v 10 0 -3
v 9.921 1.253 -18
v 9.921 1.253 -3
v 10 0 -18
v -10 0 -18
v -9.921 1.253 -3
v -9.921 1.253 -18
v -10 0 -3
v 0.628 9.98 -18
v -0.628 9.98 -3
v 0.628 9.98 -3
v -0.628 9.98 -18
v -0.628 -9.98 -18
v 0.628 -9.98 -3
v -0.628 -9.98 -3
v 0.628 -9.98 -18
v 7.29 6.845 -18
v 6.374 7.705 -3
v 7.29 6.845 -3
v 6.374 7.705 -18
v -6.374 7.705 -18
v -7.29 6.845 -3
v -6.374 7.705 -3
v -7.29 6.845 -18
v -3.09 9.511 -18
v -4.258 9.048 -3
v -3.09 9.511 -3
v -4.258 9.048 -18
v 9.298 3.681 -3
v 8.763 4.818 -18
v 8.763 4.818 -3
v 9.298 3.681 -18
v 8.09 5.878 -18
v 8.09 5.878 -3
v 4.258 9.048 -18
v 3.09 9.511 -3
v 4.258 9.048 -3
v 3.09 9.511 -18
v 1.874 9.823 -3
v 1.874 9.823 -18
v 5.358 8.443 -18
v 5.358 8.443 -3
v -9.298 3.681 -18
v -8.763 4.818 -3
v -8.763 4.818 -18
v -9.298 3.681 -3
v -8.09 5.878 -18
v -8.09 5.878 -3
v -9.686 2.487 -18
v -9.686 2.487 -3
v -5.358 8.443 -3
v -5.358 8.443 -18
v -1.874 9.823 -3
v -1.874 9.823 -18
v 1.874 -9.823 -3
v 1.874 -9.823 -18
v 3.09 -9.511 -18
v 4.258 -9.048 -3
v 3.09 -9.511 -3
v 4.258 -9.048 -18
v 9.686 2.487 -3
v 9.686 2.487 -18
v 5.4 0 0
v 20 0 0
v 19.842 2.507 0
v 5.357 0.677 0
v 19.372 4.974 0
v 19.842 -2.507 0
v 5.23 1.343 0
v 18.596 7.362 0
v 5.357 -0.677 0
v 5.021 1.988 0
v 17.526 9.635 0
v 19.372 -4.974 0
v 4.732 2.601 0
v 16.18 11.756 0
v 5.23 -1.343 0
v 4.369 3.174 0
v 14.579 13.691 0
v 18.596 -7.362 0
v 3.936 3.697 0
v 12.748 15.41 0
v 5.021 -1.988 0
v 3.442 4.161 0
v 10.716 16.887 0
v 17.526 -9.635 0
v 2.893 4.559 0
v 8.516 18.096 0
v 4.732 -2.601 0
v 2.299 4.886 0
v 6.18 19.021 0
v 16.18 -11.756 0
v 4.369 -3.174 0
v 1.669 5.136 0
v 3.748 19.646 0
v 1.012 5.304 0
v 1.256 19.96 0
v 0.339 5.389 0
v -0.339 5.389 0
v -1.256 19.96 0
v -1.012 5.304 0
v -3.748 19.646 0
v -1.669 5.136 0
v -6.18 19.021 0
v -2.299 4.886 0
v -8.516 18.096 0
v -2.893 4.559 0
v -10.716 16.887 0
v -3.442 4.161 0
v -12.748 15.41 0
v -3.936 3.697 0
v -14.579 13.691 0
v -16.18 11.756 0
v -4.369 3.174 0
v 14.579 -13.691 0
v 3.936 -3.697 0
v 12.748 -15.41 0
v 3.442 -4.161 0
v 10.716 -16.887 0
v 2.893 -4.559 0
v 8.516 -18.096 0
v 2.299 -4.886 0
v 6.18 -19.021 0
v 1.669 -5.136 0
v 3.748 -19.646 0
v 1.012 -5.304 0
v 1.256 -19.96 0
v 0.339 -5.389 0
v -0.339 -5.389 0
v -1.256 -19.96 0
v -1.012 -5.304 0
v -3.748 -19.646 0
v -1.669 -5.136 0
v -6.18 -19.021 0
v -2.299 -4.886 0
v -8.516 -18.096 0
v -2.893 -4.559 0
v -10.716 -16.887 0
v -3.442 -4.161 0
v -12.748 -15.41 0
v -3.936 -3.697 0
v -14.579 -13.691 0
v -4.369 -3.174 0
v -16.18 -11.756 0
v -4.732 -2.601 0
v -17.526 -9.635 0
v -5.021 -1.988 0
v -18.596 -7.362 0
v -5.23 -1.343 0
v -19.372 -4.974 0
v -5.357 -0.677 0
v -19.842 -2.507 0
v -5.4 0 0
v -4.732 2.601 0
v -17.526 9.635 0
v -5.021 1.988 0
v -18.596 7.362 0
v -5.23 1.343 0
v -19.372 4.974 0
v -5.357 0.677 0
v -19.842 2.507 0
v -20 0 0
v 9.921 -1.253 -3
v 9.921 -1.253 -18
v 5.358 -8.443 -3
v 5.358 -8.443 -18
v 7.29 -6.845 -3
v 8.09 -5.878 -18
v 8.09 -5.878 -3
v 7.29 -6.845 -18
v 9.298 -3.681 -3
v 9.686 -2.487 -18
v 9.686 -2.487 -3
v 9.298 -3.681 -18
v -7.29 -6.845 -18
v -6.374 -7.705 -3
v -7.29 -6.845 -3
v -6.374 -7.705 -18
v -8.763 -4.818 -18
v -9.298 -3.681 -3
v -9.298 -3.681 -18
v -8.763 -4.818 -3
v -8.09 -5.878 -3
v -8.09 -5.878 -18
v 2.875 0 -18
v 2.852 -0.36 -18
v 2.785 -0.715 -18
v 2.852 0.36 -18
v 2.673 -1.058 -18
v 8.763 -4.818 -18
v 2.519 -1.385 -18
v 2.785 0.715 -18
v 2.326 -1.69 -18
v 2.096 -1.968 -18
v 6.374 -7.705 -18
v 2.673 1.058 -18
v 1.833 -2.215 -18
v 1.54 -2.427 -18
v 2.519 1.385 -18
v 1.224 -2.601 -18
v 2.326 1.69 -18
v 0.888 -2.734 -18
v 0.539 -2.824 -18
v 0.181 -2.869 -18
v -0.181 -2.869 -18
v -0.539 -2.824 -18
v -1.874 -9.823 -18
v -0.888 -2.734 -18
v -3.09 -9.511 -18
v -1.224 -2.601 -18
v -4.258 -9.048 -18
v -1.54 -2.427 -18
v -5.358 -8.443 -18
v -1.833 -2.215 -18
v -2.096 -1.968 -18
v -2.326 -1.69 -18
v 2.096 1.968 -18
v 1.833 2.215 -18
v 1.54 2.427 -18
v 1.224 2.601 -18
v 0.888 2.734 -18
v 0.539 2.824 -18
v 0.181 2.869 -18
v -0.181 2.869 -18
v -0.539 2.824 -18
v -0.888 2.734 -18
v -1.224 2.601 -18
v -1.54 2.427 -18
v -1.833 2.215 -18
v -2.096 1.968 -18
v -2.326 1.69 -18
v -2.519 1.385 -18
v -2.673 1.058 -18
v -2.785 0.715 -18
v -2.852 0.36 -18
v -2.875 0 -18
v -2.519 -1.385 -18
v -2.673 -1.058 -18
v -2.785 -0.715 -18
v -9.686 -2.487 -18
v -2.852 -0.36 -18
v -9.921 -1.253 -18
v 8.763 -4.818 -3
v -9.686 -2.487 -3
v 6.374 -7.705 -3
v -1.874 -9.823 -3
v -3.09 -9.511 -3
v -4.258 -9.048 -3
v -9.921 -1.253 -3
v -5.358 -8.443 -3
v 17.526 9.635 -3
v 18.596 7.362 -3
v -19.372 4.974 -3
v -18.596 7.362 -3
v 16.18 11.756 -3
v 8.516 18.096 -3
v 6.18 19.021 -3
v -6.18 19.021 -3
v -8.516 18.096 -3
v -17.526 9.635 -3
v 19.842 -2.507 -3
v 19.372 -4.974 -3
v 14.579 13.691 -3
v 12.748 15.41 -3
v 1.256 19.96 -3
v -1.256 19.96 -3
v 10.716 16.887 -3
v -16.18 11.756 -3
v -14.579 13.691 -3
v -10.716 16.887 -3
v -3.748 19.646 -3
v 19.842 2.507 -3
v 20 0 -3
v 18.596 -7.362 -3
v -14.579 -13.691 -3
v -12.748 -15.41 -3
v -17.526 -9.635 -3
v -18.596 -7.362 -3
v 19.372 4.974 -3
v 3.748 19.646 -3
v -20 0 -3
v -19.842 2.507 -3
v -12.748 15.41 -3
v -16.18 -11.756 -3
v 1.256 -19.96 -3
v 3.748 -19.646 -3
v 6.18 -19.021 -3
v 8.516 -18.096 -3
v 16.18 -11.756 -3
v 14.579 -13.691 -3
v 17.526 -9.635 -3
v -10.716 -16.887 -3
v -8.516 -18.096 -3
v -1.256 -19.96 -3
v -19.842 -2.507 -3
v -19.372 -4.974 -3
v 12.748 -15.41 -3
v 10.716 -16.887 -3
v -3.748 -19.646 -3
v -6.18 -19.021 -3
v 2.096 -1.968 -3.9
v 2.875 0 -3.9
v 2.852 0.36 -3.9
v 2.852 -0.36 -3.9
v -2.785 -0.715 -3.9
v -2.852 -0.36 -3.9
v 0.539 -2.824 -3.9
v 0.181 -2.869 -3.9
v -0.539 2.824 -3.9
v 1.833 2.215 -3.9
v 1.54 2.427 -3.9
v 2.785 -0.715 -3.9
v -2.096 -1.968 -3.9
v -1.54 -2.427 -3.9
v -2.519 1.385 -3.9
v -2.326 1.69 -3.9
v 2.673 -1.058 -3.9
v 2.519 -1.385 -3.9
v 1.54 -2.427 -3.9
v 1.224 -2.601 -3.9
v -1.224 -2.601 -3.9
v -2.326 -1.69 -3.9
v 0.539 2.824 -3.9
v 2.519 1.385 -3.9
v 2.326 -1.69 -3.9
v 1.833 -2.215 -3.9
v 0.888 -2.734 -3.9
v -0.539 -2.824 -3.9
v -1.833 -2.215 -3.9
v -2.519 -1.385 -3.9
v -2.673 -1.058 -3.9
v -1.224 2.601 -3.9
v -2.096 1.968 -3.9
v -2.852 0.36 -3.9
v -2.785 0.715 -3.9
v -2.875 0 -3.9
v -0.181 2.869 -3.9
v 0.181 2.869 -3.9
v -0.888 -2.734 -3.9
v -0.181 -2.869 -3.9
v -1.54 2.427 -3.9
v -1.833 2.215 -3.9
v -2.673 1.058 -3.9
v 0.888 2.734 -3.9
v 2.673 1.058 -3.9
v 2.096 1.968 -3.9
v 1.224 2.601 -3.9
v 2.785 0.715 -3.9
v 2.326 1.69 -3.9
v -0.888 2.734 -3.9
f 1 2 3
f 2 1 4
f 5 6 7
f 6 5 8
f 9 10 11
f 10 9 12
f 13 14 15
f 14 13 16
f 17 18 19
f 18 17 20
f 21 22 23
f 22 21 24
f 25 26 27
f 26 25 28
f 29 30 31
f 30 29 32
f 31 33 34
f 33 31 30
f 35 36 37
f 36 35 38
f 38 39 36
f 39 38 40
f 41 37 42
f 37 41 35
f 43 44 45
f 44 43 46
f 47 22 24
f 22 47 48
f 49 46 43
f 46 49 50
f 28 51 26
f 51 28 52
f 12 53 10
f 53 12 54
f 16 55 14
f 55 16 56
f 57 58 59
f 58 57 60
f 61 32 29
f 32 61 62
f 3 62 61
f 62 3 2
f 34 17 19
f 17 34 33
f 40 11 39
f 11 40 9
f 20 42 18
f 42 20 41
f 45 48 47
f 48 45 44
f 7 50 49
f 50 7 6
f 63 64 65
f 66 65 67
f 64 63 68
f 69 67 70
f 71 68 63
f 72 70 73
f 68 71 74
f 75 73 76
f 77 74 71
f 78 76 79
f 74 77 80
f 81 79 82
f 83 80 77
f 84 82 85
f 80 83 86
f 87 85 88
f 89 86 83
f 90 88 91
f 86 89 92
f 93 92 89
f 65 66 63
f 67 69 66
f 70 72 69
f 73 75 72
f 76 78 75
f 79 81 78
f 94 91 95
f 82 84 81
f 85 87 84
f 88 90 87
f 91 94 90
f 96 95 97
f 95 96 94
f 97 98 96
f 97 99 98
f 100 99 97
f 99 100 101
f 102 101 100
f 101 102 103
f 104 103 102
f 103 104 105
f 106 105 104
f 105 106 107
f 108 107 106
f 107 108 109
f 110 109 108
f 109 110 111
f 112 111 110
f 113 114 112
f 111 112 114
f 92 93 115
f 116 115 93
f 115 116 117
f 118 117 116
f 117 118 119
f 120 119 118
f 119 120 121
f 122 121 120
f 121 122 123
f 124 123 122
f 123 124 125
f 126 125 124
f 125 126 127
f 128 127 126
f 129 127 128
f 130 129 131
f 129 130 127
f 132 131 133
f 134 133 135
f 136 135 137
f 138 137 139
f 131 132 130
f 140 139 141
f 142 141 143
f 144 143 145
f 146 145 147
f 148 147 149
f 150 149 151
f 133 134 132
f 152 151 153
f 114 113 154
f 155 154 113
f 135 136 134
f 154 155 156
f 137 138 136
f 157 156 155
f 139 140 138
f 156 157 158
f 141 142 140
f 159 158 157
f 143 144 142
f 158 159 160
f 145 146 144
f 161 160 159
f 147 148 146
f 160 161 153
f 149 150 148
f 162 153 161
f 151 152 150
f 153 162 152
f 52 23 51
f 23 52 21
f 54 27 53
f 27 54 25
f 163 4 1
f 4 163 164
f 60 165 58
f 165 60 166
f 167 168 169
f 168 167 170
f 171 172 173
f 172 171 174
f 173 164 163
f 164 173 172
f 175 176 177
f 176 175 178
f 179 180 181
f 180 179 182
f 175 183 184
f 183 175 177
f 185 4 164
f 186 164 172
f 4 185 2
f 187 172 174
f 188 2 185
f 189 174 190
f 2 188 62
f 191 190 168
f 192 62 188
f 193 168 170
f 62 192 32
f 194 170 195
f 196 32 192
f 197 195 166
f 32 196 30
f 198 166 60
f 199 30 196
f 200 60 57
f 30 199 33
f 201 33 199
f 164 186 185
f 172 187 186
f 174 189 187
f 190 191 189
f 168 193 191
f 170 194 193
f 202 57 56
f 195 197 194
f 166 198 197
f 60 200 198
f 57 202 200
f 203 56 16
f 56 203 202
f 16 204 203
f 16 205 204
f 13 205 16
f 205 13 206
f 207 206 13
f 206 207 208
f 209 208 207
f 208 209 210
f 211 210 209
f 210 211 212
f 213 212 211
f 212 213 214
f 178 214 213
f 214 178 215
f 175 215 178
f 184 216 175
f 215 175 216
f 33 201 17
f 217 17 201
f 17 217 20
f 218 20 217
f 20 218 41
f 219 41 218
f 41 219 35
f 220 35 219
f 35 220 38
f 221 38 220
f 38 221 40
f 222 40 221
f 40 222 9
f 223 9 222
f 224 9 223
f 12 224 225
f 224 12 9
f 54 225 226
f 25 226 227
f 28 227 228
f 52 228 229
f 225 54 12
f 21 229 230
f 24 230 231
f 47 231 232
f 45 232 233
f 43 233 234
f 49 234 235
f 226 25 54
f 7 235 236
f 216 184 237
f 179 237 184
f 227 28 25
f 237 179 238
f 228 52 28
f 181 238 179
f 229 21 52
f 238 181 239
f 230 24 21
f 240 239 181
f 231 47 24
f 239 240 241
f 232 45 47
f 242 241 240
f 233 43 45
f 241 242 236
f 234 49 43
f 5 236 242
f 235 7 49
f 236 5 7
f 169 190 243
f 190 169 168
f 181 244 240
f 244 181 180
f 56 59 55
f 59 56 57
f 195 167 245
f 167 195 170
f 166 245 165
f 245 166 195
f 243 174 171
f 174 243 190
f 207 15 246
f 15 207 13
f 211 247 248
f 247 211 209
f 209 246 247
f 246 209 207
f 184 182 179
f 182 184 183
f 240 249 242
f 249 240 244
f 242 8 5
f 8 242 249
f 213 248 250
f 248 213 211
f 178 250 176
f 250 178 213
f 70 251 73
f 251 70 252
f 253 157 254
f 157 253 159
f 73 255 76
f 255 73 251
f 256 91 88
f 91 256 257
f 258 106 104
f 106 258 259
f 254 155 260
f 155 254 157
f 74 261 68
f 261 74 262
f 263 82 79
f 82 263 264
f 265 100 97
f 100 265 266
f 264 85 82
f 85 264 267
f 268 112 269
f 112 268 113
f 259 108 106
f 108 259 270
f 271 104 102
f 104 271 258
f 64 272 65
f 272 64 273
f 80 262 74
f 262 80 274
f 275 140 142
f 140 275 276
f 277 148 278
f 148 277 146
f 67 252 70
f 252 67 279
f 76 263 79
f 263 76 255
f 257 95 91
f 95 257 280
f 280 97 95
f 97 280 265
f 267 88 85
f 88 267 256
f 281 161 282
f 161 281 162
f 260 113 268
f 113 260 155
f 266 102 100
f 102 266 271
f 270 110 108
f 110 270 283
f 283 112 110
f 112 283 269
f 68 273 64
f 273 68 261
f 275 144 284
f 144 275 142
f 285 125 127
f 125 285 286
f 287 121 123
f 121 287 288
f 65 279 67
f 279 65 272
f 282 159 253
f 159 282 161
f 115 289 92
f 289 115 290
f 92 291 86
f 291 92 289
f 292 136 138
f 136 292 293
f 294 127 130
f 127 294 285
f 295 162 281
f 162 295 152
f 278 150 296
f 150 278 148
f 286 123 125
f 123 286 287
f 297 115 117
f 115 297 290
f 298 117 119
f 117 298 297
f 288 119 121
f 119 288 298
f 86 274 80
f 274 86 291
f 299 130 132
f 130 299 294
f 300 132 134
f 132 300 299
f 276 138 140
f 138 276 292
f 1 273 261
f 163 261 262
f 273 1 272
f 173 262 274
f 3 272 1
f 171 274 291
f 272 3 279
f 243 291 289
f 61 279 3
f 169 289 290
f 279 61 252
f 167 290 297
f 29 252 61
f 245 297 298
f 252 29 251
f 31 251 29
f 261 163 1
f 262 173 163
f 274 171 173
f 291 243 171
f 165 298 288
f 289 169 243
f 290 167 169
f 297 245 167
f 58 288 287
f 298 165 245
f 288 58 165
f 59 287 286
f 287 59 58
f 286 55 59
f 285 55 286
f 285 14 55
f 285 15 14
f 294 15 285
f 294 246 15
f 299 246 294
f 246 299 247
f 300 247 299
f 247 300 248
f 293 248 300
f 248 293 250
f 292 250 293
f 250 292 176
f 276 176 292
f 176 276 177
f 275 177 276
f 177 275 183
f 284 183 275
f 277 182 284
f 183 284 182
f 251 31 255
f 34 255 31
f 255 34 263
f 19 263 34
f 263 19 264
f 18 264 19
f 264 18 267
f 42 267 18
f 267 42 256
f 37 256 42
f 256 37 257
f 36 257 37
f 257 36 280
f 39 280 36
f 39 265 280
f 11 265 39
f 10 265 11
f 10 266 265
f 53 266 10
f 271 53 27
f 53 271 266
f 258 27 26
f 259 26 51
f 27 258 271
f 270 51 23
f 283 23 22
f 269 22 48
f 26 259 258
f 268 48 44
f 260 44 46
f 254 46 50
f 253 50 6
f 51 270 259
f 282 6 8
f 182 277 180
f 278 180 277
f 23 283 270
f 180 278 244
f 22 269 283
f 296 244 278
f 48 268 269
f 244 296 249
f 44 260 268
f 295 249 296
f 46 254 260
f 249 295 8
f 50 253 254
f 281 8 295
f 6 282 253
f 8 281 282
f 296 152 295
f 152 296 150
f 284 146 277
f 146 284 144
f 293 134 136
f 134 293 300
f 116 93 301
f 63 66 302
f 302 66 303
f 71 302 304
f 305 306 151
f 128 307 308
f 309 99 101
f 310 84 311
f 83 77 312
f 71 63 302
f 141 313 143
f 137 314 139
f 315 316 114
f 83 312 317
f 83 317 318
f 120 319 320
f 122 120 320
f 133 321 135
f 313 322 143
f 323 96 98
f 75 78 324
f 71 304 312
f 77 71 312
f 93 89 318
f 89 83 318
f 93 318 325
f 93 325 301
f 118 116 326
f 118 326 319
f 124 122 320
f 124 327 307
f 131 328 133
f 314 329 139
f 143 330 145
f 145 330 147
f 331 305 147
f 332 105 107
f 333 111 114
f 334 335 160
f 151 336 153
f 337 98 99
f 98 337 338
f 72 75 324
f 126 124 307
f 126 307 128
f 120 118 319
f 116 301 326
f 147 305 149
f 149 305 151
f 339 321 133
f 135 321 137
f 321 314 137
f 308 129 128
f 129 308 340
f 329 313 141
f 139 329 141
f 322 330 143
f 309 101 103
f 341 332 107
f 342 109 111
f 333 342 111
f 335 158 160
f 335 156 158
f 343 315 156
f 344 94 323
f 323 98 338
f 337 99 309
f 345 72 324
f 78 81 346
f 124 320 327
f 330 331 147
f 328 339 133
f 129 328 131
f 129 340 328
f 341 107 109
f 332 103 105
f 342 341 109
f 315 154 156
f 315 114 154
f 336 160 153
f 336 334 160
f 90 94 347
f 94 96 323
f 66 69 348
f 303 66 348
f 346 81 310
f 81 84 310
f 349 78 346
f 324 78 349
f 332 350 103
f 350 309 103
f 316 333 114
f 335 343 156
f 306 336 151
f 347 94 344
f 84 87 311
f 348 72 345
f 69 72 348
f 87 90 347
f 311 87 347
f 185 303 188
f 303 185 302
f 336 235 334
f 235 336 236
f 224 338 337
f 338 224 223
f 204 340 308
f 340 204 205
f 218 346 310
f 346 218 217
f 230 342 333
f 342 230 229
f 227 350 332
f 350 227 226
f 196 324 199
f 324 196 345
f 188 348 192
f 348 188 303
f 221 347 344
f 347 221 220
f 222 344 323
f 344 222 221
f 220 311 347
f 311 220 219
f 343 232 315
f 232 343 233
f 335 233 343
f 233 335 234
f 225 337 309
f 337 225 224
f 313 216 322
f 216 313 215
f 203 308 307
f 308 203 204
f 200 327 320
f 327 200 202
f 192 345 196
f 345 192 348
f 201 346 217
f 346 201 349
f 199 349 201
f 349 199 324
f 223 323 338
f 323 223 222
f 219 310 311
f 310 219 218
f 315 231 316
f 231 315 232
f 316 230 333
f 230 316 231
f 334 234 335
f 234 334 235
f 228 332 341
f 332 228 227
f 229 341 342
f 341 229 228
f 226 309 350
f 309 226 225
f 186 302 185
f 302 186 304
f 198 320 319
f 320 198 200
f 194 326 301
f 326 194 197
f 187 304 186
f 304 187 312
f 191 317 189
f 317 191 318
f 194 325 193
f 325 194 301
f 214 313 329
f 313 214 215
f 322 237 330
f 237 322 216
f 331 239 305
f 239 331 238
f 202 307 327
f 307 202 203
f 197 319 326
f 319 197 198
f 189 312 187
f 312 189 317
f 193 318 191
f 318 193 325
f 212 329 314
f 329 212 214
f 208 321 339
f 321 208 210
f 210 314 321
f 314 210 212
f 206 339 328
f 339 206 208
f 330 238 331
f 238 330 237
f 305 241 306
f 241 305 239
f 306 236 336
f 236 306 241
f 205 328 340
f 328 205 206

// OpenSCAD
$fn = 50;


difference() {
	union() {
		translate(v = [0, 0, -18.0000000000]) {
			cylinder(h = 18, r = 10.0000000000);
		}
		translate(v = [0, 0, -3.0000000000]) {
			cylinder(h = 3, r = 20.0000000000);
		}
	}
	union() {
		translate(v = [0, 0, 0]) {
			rotate(a = [0, 0, 0]) {
				difference() {
					union() {
						#translate(v = [0, 0, -18.0000000000]) {
							cylinder(h = 18, r = 2.6000000000);
						}
						#translate(v = [0, 0, -3.9000000000]) {
							cylinder(h = 3.9000000000, r1 = 2.8750000000, r2 = 5.4000000000);
						}
						#translate(v = [0, 0, -18.0000000000]) {
							cylinder(h = 18, r = 2.8750000000);
						}
						#translate(v = [0, 0, -18.0000000000]) {
							cylinder(h = 18, r = 2.6000000000);
						}
					}
					union();
				}
			}
		}
	}
}
